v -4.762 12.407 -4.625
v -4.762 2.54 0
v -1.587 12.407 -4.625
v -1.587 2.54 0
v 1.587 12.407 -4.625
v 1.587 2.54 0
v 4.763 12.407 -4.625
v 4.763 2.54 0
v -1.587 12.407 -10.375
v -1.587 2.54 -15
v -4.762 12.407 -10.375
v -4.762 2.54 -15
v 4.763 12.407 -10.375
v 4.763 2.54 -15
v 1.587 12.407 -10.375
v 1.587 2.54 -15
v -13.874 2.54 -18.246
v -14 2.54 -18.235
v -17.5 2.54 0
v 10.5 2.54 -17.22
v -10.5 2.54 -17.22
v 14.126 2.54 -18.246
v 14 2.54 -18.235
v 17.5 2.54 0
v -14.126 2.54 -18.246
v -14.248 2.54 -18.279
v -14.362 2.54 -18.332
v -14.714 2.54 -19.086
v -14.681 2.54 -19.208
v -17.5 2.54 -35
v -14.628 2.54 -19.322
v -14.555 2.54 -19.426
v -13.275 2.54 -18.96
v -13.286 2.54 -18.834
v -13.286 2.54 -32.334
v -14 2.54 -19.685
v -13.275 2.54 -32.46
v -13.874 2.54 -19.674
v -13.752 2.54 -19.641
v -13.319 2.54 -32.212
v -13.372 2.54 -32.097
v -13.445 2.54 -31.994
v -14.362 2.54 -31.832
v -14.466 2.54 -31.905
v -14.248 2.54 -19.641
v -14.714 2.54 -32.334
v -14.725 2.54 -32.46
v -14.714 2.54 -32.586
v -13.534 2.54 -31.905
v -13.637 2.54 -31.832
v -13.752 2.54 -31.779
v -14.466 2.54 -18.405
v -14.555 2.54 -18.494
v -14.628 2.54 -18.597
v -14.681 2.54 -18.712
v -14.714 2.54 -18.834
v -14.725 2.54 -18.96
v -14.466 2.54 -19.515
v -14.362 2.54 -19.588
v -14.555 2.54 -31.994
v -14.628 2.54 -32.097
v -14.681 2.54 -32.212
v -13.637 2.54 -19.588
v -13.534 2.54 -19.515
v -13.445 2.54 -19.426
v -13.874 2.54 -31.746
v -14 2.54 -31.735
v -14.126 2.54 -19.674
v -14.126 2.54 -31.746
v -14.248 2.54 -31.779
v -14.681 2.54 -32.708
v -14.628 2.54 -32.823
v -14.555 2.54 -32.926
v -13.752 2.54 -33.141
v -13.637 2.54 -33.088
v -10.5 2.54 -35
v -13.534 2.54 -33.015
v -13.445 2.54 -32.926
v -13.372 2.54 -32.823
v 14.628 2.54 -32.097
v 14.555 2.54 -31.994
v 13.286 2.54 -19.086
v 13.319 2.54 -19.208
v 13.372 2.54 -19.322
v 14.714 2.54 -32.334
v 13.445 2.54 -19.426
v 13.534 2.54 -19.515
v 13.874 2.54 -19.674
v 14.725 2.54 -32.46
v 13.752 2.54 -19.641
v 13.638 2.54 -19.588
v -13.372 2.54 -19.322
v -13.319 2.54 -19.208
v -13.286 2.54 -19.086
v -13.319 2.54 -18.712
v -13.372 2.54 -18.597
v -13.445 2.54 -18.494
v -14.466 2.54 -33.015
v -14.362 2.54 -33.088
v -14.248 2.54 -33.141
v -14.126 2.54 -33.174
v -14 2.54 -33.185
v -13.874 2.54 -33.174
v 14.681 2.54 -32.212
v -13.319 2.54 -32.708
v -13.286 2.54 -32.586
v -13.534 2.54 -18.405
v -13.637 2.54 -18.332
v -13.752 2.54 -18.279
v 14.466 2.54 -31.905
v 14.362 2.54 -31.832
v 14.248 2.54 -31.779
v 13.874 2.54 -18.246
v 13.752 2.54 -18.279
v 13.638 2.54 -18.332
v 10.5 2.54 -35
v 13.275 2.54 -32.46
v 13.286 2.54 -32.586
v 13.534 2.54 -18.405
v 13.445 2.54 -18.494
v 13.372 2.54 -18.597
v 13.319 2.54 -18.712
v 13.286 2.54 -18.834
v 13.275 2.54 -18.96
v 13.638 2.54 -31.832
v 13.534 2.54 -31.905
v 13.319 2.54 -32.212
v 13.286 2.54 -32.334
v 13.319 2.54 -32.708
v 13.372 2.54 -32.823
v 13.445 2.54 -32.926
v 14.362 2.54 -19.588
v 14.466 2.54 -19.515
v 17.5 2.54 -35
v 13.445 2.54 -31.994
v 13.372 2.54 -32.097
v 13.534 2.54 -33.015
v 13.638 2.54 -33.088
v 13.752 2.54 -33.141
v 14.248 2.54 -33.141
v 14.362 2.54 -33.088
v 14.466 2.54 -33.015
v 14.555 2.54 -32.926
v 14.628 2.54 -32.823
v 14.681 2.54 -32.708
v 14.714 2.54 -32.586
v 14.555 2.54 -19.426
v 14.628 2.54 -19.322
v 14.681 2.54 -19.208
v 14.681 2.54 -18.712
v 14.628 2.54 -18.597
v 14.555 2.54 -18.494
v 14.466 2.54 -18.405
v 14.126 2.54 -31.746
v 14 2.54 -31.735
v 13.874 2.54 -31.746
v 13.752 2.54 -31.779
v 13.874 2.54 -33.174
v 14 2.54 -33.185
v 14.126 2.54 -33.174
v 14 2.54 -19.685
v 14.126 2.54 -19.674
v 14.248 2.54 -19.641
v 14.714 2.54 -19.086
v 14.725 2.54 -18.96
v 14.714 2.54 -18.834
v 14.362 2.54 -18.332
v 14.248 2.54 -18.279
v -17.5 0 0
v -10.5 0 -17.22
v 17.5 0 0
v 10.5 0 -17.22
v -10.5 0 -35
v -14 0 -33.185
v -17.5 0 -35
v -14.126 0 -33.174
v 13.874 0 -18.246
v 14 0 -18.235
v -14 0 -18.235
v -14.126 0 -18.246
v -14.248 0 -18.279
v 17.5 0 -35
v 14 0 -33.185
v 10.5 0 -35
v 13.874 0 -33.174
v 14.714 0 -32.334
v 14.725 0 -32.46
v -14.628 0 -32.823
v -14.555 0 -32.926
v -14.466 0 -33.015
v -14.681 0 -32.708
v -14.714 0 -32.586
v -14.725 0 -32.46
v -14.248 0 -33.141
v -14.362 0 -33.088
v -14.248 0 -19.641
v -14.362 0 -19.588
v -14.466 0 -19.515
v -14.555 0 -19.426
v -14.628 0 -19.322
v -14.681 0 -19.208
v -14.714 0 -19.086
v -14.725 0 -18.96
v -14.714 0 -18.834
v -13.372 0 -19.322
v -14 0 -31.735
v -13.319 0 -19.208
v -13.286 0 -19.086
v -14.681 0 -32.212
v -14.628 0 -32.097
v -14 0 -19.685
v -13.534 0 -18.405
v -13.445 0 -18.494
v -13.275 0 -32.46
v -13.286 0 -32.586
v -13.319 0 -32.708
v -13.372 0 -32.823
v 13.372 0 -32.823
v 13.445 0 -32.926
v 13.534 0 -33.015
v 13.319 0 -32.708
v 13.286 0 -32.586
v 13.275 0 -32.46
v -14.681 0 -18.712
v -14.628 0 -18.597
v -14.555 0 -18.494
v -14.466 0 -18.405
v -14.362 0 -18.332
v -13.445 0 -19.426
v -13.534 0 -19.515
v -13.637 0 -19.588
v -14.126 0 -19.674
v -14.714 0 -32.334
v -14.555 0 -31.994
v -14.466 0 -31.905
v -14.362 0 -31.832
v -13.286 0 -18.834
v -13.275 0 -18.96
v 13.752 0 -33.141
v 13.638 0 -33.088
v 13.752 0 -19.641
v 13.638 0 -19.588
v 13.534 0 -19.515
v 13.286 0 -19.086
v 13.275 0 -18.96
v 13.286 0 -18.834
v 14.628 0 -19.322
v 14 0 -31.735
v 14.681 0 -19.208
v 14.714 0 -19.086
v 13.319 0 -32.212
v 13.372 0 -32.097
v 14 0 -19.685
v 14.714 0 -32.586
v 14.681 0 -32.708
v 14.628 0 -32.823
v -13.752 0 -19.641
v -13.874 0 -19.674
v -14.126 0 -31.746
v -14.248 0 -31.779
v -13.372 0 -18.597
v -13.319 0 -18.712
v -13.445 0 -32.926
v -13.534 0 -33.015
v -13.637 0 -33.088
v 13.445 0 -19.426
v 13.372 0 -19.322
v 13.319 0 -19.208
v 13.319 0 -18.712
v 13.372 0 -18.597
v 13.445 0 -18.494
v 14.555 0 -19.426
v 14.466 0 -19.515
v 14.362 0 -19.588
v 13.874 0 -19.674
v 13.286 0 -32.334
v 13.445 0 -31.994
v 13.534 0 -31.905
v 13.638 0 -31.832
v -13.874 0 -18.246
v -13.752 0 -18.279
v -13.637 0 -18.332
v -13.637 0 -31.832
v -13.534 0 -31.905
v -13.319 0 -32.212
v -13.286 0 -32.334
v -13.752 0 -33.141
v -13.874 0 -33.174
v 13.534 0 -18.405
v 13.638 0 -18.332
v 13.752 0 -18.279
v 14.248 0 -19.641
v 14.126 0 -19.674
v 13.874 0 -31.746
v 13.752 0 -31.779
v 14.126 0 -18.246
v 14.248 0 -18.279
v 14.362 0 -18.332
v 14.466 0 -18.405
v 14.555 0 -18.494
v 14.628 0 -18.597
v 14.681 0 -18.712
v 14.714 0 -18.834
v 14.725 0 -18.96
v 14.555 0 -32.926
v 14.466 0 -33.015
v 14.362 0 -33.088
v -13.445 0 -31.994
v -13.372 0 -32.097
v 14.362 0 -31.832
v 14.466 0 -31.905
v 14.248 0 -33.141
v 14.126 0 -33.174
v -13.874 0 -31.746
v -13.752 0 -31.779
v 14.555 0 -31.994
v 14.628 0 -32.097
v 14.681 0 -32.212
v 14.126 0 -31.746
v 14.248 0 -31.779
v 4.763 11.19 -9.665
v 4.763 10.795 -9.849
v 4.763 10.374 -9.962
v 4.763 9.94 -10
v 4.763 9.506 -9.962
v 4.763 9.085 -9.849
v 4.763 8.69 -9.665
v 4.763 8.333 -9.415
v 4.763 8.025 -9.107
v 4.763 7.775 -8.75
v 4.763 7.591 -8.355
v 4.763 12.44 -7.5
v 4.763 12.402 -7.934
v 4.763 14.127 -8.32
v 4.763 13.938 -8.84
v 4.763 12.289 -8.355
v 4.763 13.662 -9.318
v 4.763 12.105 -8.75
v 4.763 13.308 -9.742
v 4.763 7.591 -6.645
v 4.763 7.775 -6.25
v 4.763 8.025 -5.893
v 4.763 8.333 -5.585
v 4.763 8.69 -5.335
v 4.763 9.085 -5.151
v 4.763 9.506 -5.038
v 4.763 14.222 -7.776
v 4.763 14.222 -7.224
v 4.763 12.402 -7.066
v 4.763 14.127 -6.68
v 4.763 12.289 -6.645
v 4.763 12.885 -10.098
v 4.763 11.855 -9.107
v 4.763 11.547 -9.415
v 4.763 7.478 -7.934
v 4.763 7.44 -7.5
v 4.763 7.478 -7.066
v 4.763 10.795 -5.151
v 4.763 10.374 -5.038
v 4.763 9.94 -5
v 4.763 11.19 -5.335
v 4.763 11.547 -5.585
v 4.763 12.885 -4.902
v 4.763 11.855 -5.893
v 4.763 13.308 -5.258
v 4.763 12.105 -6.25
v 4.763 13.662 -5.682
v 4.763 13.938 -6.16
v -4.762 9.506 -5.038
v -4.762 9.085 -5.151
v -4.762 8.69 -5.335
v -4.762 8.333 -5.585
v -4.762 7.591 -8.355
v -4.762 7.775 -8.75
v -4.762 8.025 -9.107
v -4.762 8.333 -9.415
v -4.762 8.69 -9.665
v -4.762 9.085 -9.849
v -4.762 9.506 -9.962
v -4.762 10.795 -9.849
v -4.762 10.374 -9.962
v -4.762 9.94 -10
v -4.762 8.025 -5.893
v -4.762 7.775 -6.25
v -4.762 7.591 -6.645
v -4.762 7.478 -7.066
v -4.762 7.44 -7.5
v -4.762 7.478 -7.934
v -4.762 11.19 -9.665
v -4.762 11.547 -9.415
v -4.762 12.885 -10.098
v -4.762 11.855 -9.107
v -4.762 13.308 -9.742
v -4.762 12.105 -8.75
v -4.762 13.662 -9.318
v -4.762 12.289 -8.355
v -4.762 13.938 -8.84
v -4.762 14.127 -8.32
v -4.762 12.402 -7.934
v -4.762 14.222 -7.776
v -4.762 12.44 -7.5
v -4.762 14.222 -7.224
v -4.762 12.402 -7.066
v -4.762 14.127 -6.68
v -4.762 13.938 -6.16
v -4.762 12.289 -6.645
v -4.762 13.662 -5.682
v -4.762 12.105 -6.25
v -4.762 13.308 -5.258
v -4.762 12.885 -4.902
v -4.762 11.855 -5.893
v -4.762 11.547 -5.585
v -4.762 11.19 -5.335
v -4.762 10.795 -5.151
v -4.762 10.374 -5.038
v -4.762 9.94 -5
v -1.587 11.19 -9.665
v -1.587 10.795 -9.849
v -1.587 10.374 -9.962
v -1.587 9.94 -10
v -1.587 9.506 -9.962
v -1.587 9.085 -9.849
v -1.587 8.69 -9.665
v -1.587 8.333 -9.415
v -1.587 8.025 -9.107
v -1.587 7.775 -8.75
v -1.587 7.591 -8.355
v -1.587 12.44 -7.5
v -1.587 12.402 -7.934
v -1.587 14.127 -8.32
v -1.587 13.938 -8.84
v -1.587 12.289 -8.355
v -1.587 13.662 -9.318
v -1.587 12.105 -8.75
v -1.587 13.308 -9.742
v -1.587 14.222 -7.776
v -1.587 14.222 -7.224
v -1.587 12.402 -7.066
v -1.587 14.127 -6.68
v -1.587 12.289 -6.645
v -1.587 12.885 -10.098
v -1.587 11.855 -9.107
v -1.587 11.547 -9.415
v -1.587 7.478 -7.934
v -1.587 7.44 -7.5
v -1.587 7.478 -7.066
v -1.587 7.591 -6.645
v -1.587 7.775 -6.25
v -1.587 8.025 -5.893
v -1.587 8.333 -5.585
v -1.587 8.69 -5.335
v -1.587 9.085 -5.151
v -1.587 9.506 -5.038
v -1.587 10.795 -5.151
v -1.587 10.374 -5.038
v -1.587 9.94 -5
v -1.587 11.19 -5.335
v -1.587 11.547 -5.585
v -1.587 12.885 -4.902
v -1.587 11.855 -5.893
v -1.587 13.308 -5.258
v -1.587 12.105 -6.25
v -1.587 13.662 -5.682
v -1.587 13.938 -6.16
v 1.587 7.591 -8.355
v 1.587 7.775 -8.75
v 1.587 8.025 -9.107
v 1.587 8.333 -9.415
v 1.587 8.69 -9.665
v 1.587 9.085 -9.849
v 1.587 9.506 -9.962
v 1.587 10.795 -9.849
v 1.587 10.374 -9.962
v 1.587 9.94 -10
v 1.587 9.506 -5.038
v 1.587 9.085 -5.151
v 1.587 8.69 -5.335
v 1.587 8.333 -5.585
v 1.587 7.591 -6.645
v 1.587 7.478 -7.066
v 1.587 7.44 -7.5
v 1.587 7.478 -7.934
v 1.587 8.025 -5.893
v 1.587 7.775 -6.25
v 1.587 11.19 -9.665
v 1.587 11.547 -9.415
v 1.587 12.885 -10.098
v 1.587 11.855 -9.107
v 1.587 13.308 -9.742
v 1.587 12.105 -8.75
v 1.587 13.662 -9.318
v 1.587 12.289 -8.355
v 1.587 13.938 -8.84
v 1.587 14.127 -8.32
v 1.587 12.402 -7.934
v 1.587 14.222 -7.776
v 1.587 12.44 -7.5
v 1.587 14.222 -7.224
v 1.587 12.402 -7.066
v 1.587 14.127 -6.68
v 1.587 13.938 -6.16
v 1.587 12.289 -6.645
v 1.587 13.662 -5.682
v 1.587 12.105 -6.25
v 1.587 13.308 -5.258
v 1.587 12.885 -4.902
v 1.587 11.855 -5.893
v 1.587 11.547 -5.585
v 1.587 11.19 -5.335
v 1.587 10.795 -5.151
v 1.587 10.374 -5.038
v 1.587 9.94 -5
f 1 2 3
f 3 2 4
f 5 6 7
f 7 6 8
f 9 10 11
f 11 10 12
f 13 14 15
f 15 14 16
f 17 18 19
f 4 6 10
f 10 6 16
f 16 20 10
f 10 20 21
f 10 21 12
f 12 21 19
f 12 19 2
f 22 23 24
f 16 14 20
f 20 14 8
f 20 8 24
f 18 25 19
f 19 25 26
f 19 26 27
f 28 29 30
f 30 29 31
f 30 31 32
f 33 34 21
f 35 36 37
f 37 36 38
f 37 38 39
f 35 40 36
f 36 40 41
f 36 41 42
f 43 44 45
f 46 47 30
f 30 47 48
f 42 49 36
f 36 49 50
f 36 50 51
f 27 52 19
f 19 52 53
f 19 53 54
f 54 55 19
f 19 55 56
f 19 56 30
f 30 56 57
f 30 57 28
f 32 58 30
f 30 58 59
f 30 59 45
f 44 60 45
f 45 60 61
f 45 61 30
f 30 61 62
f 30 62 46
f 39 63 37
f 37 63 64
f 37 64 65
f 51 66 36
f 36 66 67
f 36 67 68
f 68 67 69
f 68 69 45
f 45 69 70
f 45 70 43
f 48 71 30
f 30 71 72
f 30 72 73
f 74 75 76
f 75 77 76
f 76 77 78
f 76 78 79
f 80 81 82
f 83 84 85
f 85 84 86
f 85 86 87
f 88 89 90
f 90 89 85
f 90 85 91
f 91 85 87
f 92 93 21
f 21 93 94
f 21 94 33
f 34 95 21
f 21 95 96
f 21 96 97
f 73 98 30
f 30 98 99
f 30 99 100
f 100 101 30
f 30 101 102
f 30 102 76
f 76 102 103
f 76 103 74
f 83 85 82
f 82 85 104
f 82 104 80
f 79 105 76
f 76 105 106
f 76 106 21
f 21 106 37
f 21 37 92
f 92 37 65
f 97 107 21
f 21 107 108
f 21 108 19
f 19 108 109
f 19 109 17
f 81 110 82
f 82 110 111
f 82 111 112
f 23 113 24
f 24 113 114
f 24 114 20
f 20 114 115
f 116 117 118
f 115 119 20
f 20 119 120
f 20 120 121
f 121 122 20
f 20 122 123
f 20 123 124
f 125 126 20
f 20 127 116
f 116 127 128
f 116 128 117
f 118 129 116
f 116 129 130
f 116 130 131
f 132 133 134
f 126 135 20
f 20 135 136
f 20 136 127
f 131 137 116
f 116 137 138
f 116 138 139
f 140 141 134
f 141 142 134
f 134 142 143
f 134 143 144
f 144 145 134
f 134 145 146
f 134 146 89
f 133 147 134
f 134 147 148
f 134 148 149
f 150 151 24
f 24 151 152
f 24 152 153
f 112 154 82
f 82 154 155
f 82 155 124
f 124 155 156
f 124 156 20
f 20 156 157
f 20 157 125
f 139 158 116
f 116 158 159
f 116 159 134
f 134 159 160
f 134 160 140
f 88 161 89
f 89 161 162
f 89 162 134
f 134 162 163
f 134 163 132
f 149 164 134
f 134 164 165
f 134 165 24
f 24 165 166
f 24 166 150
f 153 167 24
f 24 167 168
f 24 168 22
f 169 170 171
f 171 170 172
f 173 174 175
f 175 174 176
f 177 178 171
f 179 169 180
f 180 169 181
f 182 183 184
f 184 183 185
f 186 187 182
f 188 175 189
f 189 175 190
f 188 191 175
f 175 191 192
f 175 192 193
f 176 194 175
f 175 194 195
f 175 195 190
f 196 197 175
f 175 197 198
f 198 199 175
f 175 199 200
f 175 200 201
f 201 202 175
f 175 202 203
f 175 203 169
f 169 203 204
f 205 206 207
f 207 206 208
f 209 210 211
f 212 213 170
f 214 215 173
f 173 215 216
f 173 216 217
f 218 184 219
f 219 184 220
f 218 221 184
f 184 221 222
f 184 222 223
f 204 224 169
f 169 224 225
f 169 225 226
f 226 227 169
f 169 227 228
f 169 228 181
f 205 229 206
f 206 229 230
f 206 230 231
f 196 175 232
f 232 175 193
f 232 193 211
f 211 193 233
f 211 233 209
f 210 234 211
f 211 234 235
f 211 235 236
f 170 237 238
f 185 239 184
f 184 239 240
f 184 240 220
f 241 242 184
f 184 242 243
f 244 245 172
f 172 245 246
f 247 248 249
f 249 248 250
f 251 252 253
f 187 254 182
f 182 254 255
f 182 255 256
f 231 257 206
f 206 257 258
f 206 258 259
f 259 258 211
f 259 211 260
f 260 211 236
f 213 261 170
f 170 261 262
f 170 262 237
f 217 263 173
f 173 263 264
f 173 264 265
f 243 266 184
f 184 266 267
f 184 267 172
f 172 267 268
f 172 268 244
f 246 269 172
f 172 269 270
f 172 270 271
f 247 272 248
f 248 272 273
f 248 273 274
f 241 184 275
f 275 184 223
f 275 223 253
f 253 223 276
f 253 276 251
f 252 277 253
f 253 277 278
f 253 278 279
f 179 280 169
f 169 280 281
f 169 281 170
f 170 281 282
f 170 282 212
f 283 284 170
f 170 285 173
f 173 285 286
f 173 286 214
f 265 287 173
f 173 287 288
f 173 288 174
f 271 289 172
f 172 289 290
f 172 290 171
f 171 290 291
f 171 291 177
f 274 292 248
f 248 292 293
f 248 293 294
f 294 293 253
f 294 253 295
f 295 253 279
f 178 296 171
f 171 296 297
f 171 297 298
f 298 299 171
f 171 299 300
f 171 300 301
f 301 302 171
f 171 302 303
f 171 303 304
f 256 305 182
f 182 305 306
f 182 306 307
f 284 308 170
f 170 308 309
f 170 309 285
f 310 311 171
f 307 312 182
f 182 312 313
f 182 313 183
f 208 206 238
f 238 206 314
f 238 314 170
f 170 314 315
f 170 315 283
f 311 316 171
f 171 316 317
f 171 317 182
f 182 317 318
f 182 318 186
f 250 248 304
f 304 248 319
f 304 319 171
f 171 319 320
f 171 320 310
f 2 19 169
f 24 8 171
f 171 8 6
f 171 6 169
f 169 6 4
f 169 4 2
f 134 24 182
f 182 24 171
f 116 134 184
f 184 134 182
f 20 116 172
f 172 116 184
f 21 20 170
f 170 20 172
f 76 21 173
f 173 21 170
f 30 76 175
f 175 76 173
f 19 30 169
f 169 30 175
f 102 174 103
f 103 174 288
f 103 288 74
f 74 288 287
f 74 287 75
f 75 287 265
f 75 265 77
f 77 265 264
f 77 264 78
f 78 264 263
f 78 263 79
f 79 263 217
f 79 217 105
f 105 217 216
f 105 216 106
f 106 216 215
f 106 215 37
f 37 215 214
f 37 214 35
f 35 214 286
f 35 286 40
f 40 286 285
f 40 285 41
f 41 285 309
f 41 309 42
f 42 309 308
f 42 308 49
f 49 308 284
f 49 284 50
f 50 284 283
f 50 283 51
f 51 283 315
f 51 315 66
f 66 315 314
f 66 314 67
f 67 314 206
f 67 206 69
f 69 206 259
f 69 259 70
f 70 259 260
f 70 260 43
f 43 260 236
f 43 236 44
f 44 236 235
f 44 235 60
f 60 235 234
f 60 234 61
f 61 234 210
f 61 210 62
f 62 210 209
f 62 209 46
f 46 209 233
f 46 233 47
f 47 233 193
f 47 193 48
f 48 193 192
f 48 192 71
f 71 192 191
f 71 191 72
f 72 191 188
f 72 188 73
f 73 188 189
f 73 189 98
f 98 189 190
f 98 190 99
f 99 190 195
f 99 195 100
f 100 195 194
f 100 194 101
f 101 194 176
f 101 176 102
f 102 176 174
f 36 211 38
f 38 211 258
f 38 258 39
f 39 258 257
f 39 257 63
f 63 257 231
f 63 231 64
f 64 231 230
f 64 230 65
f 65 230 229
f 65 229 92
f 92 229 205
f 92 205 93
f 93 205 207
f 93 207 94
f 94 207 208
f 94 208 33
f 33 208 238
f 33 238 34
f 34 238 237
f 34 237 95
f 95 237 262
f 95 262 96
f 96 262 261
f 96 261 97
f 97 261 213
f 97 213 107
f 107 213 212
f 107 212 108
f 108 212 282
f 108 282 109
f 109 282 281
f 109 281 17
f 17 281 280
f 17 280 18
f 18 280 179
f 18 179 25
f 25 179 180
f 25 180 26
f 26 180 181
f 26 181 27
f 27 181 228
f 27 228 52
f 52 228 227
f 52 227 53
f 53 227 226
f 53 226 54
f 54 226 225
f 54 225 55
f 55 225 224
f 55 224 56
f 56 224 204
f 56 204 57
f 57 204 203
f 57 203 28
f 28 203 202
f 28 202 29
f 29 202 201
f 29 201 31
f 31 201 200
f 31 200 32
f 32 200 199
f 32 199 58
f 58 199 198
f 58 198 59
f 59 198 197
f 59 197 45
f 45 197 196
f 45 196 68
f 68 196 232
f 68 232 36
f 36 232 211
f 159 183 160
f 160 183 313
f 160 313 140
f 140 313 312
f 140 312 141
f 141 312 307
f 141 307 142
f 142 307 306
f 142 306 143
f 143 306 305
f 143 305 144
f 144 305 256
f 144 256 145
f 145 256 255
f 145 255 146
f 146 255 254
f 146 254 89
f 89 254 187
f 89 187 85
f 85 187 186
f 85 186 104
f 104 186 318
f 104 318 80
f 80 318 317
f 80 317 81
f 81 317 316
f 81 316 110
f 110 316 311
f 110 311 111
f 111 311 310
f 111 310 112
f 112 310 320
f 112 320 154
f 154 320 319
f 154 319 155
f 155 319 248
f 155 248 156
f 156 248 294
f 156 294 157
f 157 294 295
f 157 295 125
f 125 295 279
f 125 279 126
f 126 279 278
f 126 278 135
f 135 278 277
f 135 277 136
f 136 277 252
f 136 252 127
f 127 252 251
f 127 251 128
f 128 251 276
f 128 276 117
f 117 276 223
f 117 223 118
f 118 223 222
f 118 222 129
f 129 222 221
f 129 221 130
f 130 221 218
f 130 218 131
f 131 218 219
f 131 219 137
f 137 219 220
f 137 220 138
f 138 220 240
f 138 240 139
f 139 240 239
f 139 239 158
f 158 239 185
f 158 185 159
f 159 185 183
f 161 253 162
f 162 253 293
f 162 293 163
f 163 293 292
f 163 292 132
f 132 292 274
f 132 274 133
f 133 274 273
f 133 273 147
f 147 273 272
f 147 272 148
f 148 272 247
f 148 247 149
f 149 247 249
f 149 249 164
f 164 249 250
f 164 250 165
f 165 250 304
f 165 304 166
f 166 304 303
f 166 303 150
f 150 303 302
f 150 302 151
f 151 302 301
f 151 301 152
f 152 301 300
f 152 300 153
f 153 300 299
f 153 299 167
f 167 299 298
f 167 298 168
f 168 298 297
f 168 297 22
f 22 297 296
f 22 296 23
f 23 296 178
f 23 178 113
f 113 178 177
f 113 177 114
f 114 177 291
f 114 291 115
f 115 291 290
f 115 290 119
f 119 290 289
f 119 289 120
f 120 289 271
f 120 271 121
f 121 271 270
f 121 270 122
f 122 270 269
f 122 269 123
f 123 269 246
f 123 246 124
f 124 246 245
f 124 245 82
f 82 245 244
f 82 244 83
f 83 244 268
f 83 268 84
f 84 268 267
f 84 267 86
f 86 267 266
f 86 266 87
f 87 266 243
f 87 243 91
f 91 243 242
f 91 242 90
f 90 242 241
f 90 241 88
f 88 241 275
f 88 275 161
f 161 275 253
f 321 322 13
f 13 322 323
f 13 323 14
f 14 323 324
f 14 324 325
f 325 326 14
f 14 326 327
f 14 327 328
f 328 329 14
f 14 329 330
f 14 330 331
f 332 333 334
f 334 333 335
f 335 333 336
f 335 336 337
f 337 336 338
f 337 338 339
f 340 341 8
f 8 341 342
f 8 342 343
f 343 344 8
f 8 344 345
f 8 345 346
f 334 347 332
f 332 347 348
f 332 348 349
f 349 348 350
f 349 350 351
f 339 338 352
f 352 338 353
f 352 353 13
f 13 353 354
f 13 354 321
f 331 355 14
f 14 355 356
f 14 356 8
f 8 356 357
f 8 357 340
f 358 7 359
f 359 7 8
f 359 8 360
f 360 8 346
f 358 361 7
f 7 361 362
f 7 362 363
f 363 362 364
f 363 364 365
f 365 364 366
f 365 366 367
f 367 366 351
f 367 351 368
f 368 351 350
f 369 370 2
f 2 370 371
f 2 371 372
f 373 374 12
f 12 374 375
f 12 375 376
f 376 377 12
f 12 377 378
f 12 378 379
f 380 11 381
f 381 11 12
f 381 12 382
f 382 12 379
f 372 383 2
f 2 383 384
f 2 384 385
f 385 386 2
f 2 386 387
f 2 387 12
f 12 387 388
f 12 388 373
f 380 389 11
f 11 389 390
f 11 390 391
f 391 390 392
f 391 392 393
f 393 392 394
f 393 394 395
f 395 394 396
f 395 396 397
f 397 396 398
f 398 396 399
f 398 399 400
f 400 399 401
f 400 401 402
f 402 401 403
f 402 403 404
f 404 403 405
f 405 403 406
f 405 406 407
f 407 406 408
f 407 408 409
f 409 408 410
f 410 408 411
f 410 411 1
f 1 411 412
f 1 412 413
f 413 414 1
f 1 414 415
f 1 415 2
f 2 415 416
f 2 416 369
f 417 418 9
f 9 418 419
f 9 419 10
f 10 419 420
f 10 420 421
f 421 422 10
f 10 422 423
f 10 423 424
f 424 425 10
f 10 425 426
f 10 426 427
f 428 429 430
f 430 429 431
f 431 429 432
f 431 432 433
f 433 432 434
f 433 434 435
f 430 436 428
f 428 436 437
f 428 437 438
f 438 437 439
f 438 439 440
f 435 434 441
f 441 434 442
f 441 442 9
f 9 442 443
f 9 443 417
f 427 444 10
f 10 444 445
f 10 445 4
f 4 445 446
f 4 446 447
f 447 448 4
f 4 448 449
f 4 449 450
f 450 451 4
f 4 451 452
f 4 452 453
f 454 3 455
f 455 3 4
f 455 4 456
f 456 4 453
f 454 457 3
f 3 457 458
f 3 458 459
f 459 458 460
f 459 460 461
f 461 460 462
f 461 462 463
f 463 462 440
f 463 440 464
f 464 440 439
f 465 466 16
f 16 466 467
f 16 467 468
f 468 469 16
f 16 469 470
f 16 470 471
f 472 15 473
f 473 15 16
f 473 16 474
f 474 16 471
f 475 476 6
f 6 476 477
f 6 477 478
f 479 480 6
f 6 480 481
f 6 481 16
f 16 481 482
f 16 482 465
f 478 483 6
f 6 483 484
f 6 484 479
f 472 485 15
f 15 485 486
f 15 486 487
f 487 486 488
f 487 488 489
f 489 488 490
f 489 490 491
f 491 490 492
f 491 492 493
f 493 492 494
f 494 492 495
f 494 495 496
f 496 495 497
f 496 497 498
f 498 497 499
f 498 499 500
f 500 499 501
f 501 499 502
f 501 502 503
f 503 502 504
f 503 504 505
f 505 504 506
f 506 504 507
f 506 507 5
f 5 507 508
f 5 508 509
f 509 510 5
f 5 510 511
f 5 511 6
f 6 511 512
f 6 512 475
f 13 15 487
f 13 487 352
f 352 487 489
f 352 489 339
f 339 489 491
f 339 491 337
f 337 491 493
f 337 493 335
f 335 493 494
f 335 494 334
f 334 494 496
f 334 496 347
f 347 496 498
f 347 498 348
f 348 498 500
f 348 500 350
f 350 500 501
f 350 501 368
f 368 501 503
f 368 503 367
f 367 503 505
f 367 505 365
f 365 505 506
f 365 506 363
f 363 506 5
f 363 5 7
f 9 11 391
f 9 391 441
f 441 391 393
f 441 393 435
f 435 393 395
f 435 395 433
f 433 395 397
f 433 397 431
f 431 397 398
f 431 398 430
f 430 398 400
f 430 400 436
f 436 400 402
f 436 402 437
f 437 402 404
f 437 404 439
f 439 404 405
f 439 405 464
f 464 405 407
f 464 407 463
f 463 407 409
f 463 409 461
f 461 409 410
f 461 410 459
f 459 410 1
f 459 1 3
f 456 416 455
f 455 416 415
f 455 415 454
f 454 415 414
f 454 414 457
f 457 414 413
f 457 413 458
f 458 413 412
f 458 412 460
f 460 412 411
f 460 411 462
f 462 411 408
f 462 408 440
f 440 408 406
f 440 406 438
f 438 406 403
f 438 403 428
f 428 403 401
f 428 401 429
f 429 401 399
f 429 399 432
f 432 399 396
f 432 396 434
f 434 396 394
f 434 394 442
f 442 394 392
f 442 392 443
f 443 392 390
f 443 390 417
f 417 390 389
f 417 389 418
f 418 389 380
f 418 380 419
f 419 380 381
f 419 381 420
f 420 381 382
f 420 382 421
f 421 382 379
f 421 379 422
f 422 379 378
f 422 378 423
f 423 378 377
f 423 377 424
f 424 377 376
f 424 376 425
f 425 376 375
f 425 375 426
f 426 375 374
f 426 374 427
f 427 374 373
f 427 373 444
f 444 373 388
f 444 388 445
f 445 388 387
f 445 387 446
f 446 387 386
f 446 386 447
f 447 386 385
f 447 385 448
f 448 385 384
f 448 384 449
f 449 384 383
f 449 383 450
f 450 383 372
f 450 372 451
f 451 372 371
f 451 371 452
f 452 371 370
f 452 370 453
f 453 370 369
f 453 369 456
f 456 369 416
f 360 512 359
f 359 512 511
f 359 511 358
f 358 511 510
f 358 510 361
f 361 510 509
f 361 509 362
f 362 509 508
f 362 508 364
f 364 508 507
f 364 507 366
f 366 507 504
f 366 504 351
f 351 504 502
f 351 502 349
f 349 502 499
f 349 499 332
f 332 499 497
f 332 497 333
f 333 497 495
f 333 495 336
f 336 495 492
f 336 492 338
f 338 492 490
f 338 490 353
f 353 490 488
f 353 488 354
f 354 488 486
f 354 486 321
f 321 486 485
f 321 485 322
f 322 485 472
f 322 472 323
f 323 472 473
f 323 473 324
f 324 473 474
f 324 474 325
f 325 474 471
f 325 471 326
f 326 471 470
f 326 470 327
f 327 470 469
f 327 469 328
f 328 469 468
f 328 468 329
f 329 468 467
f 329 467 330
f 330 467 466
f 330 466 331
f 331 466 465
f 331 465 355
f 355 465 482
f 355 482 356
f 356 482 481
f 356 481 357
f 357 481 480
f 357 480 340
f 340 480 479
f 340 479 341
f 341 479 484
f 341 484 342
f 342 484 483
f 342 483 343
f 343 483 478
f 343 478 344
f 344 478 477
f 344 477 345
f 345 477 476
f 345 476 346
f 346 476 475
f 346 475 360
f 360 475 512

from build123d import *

# Parameters (mm, degrees)
SKETCH1_R                 = 0.725
BOSS_EXTRUDE1_DEPTH       = 2.54
SKETCH2_R                 = 1.651
BOSS_EXTRUDE2_DEPTH       = 4.7625
SKETCH3_W                 = 3.175
SKETCH3_H                 = 15
CUT_EXTRUDE1_DEPTH        = 16
FILLET1_R                 = 3.175
F_5_0MM_DOWEL_HOLE1_D     = 5
F_5_0MM_DOWEL_HOLE1_DEPTH = 20
F_5_0MM_DOWEL_HOLE1_TIP   = 1.502151548


with BuildPart() as part:
    # Sketch1 → Boss-Extrude1 (new body)
    with BuildSketch(Plane(origin=(0, 0, 0), x_dir=(1, 0, 0), z_dir=(0, 1, 0))):
        Polygon((-17.5, 0), (-17.5, 35), (-10.5, 35), (-10.5, 17.22), (10.5, 17.22), (10.5, 35), (17.5, 35), (17.5, 0), align=None)
        with Locations((-14, 32.46)):
            Circle(SKETCH1_R, mode=Mode.SUBTRACT)
        with Locations((-14, 18.96)):
            Circle(SKETCH1_R, mode=Mode.SUBTRACT)
        with Locations((14, 32.46)):
            Circle(SKETCH1_R, mode=Mode.SUBTRACT)
        with Locations((14, 18.96)):
            Circle(SKETCH1_R, mode=Mode.SUBTRACT)
    extrude(amount=BOSS_EXTRUDE1_DEPTH)

    # Sketch2 → Boss-Extrude2 (add, symmetric)
    with BuildSketch(Plane(origin=(0, 0, 0), x_dir=(0, 0, -1), z_dir=(1, 0, 0))):
        Polygon((15, 2.54), (7.5, 18.54), (0, 2.54), align=None)
        with Locations((7.5, 9.94)):
            Circle(SKETCH2_R, mode=Mode.SUBTRACT)
    extrude(amount=BOSS_EXTRUDE2_DEPTH, both=True)

    # Sketch3 → Cut-Extrude1 (cut)
    with BuildSketch(Plane(origin=(0, 2.54, 0), x_dir=(1, 0, 0), z_dir=(0, 1, 0))):
        with Locations((0, 7.5)):
            Rectangle(SKETCH3_W, SKETCH3_H)
    extrude(amount=CUT_EXTRUDE1_DEPTH, mode=Mode.SUBTRACT)

    # Fillet1
    fillet1_edges = [part.edges().sort_by_distance(p)[0] for p in [
        (3.175, 18.54, -7.5),
        (-3.175, 18.54, -7.5),
    ]]
    fillet(fillet1_edges, radius=FILLET1_R)

    # Ø5.0mm Dowel Hole1
    with Locations(Plane.ZY.offset(4.7625)):
        with Locations((-7.5, 9.94)):
            Hole(F_5_0MM_DOWEL_HOLE1_D / 2, depth=F_5_0MM_DOWEL_HOLE1_DEPTH)
            with Locations((0, 0, -(F_5_0MM_DOWEL_HOLE1_DEPTH + F_5_0MM_DOWEL_HOLE1_TIP / 2))):  # 118° drill point
                Cone(0, F_5_0MM_DOWEL_HOLE1_D / 2, F_5_0MM_DOWEL_HOLE1_TIP, mode=Mode.SUBTRACT)


solid = part.part
